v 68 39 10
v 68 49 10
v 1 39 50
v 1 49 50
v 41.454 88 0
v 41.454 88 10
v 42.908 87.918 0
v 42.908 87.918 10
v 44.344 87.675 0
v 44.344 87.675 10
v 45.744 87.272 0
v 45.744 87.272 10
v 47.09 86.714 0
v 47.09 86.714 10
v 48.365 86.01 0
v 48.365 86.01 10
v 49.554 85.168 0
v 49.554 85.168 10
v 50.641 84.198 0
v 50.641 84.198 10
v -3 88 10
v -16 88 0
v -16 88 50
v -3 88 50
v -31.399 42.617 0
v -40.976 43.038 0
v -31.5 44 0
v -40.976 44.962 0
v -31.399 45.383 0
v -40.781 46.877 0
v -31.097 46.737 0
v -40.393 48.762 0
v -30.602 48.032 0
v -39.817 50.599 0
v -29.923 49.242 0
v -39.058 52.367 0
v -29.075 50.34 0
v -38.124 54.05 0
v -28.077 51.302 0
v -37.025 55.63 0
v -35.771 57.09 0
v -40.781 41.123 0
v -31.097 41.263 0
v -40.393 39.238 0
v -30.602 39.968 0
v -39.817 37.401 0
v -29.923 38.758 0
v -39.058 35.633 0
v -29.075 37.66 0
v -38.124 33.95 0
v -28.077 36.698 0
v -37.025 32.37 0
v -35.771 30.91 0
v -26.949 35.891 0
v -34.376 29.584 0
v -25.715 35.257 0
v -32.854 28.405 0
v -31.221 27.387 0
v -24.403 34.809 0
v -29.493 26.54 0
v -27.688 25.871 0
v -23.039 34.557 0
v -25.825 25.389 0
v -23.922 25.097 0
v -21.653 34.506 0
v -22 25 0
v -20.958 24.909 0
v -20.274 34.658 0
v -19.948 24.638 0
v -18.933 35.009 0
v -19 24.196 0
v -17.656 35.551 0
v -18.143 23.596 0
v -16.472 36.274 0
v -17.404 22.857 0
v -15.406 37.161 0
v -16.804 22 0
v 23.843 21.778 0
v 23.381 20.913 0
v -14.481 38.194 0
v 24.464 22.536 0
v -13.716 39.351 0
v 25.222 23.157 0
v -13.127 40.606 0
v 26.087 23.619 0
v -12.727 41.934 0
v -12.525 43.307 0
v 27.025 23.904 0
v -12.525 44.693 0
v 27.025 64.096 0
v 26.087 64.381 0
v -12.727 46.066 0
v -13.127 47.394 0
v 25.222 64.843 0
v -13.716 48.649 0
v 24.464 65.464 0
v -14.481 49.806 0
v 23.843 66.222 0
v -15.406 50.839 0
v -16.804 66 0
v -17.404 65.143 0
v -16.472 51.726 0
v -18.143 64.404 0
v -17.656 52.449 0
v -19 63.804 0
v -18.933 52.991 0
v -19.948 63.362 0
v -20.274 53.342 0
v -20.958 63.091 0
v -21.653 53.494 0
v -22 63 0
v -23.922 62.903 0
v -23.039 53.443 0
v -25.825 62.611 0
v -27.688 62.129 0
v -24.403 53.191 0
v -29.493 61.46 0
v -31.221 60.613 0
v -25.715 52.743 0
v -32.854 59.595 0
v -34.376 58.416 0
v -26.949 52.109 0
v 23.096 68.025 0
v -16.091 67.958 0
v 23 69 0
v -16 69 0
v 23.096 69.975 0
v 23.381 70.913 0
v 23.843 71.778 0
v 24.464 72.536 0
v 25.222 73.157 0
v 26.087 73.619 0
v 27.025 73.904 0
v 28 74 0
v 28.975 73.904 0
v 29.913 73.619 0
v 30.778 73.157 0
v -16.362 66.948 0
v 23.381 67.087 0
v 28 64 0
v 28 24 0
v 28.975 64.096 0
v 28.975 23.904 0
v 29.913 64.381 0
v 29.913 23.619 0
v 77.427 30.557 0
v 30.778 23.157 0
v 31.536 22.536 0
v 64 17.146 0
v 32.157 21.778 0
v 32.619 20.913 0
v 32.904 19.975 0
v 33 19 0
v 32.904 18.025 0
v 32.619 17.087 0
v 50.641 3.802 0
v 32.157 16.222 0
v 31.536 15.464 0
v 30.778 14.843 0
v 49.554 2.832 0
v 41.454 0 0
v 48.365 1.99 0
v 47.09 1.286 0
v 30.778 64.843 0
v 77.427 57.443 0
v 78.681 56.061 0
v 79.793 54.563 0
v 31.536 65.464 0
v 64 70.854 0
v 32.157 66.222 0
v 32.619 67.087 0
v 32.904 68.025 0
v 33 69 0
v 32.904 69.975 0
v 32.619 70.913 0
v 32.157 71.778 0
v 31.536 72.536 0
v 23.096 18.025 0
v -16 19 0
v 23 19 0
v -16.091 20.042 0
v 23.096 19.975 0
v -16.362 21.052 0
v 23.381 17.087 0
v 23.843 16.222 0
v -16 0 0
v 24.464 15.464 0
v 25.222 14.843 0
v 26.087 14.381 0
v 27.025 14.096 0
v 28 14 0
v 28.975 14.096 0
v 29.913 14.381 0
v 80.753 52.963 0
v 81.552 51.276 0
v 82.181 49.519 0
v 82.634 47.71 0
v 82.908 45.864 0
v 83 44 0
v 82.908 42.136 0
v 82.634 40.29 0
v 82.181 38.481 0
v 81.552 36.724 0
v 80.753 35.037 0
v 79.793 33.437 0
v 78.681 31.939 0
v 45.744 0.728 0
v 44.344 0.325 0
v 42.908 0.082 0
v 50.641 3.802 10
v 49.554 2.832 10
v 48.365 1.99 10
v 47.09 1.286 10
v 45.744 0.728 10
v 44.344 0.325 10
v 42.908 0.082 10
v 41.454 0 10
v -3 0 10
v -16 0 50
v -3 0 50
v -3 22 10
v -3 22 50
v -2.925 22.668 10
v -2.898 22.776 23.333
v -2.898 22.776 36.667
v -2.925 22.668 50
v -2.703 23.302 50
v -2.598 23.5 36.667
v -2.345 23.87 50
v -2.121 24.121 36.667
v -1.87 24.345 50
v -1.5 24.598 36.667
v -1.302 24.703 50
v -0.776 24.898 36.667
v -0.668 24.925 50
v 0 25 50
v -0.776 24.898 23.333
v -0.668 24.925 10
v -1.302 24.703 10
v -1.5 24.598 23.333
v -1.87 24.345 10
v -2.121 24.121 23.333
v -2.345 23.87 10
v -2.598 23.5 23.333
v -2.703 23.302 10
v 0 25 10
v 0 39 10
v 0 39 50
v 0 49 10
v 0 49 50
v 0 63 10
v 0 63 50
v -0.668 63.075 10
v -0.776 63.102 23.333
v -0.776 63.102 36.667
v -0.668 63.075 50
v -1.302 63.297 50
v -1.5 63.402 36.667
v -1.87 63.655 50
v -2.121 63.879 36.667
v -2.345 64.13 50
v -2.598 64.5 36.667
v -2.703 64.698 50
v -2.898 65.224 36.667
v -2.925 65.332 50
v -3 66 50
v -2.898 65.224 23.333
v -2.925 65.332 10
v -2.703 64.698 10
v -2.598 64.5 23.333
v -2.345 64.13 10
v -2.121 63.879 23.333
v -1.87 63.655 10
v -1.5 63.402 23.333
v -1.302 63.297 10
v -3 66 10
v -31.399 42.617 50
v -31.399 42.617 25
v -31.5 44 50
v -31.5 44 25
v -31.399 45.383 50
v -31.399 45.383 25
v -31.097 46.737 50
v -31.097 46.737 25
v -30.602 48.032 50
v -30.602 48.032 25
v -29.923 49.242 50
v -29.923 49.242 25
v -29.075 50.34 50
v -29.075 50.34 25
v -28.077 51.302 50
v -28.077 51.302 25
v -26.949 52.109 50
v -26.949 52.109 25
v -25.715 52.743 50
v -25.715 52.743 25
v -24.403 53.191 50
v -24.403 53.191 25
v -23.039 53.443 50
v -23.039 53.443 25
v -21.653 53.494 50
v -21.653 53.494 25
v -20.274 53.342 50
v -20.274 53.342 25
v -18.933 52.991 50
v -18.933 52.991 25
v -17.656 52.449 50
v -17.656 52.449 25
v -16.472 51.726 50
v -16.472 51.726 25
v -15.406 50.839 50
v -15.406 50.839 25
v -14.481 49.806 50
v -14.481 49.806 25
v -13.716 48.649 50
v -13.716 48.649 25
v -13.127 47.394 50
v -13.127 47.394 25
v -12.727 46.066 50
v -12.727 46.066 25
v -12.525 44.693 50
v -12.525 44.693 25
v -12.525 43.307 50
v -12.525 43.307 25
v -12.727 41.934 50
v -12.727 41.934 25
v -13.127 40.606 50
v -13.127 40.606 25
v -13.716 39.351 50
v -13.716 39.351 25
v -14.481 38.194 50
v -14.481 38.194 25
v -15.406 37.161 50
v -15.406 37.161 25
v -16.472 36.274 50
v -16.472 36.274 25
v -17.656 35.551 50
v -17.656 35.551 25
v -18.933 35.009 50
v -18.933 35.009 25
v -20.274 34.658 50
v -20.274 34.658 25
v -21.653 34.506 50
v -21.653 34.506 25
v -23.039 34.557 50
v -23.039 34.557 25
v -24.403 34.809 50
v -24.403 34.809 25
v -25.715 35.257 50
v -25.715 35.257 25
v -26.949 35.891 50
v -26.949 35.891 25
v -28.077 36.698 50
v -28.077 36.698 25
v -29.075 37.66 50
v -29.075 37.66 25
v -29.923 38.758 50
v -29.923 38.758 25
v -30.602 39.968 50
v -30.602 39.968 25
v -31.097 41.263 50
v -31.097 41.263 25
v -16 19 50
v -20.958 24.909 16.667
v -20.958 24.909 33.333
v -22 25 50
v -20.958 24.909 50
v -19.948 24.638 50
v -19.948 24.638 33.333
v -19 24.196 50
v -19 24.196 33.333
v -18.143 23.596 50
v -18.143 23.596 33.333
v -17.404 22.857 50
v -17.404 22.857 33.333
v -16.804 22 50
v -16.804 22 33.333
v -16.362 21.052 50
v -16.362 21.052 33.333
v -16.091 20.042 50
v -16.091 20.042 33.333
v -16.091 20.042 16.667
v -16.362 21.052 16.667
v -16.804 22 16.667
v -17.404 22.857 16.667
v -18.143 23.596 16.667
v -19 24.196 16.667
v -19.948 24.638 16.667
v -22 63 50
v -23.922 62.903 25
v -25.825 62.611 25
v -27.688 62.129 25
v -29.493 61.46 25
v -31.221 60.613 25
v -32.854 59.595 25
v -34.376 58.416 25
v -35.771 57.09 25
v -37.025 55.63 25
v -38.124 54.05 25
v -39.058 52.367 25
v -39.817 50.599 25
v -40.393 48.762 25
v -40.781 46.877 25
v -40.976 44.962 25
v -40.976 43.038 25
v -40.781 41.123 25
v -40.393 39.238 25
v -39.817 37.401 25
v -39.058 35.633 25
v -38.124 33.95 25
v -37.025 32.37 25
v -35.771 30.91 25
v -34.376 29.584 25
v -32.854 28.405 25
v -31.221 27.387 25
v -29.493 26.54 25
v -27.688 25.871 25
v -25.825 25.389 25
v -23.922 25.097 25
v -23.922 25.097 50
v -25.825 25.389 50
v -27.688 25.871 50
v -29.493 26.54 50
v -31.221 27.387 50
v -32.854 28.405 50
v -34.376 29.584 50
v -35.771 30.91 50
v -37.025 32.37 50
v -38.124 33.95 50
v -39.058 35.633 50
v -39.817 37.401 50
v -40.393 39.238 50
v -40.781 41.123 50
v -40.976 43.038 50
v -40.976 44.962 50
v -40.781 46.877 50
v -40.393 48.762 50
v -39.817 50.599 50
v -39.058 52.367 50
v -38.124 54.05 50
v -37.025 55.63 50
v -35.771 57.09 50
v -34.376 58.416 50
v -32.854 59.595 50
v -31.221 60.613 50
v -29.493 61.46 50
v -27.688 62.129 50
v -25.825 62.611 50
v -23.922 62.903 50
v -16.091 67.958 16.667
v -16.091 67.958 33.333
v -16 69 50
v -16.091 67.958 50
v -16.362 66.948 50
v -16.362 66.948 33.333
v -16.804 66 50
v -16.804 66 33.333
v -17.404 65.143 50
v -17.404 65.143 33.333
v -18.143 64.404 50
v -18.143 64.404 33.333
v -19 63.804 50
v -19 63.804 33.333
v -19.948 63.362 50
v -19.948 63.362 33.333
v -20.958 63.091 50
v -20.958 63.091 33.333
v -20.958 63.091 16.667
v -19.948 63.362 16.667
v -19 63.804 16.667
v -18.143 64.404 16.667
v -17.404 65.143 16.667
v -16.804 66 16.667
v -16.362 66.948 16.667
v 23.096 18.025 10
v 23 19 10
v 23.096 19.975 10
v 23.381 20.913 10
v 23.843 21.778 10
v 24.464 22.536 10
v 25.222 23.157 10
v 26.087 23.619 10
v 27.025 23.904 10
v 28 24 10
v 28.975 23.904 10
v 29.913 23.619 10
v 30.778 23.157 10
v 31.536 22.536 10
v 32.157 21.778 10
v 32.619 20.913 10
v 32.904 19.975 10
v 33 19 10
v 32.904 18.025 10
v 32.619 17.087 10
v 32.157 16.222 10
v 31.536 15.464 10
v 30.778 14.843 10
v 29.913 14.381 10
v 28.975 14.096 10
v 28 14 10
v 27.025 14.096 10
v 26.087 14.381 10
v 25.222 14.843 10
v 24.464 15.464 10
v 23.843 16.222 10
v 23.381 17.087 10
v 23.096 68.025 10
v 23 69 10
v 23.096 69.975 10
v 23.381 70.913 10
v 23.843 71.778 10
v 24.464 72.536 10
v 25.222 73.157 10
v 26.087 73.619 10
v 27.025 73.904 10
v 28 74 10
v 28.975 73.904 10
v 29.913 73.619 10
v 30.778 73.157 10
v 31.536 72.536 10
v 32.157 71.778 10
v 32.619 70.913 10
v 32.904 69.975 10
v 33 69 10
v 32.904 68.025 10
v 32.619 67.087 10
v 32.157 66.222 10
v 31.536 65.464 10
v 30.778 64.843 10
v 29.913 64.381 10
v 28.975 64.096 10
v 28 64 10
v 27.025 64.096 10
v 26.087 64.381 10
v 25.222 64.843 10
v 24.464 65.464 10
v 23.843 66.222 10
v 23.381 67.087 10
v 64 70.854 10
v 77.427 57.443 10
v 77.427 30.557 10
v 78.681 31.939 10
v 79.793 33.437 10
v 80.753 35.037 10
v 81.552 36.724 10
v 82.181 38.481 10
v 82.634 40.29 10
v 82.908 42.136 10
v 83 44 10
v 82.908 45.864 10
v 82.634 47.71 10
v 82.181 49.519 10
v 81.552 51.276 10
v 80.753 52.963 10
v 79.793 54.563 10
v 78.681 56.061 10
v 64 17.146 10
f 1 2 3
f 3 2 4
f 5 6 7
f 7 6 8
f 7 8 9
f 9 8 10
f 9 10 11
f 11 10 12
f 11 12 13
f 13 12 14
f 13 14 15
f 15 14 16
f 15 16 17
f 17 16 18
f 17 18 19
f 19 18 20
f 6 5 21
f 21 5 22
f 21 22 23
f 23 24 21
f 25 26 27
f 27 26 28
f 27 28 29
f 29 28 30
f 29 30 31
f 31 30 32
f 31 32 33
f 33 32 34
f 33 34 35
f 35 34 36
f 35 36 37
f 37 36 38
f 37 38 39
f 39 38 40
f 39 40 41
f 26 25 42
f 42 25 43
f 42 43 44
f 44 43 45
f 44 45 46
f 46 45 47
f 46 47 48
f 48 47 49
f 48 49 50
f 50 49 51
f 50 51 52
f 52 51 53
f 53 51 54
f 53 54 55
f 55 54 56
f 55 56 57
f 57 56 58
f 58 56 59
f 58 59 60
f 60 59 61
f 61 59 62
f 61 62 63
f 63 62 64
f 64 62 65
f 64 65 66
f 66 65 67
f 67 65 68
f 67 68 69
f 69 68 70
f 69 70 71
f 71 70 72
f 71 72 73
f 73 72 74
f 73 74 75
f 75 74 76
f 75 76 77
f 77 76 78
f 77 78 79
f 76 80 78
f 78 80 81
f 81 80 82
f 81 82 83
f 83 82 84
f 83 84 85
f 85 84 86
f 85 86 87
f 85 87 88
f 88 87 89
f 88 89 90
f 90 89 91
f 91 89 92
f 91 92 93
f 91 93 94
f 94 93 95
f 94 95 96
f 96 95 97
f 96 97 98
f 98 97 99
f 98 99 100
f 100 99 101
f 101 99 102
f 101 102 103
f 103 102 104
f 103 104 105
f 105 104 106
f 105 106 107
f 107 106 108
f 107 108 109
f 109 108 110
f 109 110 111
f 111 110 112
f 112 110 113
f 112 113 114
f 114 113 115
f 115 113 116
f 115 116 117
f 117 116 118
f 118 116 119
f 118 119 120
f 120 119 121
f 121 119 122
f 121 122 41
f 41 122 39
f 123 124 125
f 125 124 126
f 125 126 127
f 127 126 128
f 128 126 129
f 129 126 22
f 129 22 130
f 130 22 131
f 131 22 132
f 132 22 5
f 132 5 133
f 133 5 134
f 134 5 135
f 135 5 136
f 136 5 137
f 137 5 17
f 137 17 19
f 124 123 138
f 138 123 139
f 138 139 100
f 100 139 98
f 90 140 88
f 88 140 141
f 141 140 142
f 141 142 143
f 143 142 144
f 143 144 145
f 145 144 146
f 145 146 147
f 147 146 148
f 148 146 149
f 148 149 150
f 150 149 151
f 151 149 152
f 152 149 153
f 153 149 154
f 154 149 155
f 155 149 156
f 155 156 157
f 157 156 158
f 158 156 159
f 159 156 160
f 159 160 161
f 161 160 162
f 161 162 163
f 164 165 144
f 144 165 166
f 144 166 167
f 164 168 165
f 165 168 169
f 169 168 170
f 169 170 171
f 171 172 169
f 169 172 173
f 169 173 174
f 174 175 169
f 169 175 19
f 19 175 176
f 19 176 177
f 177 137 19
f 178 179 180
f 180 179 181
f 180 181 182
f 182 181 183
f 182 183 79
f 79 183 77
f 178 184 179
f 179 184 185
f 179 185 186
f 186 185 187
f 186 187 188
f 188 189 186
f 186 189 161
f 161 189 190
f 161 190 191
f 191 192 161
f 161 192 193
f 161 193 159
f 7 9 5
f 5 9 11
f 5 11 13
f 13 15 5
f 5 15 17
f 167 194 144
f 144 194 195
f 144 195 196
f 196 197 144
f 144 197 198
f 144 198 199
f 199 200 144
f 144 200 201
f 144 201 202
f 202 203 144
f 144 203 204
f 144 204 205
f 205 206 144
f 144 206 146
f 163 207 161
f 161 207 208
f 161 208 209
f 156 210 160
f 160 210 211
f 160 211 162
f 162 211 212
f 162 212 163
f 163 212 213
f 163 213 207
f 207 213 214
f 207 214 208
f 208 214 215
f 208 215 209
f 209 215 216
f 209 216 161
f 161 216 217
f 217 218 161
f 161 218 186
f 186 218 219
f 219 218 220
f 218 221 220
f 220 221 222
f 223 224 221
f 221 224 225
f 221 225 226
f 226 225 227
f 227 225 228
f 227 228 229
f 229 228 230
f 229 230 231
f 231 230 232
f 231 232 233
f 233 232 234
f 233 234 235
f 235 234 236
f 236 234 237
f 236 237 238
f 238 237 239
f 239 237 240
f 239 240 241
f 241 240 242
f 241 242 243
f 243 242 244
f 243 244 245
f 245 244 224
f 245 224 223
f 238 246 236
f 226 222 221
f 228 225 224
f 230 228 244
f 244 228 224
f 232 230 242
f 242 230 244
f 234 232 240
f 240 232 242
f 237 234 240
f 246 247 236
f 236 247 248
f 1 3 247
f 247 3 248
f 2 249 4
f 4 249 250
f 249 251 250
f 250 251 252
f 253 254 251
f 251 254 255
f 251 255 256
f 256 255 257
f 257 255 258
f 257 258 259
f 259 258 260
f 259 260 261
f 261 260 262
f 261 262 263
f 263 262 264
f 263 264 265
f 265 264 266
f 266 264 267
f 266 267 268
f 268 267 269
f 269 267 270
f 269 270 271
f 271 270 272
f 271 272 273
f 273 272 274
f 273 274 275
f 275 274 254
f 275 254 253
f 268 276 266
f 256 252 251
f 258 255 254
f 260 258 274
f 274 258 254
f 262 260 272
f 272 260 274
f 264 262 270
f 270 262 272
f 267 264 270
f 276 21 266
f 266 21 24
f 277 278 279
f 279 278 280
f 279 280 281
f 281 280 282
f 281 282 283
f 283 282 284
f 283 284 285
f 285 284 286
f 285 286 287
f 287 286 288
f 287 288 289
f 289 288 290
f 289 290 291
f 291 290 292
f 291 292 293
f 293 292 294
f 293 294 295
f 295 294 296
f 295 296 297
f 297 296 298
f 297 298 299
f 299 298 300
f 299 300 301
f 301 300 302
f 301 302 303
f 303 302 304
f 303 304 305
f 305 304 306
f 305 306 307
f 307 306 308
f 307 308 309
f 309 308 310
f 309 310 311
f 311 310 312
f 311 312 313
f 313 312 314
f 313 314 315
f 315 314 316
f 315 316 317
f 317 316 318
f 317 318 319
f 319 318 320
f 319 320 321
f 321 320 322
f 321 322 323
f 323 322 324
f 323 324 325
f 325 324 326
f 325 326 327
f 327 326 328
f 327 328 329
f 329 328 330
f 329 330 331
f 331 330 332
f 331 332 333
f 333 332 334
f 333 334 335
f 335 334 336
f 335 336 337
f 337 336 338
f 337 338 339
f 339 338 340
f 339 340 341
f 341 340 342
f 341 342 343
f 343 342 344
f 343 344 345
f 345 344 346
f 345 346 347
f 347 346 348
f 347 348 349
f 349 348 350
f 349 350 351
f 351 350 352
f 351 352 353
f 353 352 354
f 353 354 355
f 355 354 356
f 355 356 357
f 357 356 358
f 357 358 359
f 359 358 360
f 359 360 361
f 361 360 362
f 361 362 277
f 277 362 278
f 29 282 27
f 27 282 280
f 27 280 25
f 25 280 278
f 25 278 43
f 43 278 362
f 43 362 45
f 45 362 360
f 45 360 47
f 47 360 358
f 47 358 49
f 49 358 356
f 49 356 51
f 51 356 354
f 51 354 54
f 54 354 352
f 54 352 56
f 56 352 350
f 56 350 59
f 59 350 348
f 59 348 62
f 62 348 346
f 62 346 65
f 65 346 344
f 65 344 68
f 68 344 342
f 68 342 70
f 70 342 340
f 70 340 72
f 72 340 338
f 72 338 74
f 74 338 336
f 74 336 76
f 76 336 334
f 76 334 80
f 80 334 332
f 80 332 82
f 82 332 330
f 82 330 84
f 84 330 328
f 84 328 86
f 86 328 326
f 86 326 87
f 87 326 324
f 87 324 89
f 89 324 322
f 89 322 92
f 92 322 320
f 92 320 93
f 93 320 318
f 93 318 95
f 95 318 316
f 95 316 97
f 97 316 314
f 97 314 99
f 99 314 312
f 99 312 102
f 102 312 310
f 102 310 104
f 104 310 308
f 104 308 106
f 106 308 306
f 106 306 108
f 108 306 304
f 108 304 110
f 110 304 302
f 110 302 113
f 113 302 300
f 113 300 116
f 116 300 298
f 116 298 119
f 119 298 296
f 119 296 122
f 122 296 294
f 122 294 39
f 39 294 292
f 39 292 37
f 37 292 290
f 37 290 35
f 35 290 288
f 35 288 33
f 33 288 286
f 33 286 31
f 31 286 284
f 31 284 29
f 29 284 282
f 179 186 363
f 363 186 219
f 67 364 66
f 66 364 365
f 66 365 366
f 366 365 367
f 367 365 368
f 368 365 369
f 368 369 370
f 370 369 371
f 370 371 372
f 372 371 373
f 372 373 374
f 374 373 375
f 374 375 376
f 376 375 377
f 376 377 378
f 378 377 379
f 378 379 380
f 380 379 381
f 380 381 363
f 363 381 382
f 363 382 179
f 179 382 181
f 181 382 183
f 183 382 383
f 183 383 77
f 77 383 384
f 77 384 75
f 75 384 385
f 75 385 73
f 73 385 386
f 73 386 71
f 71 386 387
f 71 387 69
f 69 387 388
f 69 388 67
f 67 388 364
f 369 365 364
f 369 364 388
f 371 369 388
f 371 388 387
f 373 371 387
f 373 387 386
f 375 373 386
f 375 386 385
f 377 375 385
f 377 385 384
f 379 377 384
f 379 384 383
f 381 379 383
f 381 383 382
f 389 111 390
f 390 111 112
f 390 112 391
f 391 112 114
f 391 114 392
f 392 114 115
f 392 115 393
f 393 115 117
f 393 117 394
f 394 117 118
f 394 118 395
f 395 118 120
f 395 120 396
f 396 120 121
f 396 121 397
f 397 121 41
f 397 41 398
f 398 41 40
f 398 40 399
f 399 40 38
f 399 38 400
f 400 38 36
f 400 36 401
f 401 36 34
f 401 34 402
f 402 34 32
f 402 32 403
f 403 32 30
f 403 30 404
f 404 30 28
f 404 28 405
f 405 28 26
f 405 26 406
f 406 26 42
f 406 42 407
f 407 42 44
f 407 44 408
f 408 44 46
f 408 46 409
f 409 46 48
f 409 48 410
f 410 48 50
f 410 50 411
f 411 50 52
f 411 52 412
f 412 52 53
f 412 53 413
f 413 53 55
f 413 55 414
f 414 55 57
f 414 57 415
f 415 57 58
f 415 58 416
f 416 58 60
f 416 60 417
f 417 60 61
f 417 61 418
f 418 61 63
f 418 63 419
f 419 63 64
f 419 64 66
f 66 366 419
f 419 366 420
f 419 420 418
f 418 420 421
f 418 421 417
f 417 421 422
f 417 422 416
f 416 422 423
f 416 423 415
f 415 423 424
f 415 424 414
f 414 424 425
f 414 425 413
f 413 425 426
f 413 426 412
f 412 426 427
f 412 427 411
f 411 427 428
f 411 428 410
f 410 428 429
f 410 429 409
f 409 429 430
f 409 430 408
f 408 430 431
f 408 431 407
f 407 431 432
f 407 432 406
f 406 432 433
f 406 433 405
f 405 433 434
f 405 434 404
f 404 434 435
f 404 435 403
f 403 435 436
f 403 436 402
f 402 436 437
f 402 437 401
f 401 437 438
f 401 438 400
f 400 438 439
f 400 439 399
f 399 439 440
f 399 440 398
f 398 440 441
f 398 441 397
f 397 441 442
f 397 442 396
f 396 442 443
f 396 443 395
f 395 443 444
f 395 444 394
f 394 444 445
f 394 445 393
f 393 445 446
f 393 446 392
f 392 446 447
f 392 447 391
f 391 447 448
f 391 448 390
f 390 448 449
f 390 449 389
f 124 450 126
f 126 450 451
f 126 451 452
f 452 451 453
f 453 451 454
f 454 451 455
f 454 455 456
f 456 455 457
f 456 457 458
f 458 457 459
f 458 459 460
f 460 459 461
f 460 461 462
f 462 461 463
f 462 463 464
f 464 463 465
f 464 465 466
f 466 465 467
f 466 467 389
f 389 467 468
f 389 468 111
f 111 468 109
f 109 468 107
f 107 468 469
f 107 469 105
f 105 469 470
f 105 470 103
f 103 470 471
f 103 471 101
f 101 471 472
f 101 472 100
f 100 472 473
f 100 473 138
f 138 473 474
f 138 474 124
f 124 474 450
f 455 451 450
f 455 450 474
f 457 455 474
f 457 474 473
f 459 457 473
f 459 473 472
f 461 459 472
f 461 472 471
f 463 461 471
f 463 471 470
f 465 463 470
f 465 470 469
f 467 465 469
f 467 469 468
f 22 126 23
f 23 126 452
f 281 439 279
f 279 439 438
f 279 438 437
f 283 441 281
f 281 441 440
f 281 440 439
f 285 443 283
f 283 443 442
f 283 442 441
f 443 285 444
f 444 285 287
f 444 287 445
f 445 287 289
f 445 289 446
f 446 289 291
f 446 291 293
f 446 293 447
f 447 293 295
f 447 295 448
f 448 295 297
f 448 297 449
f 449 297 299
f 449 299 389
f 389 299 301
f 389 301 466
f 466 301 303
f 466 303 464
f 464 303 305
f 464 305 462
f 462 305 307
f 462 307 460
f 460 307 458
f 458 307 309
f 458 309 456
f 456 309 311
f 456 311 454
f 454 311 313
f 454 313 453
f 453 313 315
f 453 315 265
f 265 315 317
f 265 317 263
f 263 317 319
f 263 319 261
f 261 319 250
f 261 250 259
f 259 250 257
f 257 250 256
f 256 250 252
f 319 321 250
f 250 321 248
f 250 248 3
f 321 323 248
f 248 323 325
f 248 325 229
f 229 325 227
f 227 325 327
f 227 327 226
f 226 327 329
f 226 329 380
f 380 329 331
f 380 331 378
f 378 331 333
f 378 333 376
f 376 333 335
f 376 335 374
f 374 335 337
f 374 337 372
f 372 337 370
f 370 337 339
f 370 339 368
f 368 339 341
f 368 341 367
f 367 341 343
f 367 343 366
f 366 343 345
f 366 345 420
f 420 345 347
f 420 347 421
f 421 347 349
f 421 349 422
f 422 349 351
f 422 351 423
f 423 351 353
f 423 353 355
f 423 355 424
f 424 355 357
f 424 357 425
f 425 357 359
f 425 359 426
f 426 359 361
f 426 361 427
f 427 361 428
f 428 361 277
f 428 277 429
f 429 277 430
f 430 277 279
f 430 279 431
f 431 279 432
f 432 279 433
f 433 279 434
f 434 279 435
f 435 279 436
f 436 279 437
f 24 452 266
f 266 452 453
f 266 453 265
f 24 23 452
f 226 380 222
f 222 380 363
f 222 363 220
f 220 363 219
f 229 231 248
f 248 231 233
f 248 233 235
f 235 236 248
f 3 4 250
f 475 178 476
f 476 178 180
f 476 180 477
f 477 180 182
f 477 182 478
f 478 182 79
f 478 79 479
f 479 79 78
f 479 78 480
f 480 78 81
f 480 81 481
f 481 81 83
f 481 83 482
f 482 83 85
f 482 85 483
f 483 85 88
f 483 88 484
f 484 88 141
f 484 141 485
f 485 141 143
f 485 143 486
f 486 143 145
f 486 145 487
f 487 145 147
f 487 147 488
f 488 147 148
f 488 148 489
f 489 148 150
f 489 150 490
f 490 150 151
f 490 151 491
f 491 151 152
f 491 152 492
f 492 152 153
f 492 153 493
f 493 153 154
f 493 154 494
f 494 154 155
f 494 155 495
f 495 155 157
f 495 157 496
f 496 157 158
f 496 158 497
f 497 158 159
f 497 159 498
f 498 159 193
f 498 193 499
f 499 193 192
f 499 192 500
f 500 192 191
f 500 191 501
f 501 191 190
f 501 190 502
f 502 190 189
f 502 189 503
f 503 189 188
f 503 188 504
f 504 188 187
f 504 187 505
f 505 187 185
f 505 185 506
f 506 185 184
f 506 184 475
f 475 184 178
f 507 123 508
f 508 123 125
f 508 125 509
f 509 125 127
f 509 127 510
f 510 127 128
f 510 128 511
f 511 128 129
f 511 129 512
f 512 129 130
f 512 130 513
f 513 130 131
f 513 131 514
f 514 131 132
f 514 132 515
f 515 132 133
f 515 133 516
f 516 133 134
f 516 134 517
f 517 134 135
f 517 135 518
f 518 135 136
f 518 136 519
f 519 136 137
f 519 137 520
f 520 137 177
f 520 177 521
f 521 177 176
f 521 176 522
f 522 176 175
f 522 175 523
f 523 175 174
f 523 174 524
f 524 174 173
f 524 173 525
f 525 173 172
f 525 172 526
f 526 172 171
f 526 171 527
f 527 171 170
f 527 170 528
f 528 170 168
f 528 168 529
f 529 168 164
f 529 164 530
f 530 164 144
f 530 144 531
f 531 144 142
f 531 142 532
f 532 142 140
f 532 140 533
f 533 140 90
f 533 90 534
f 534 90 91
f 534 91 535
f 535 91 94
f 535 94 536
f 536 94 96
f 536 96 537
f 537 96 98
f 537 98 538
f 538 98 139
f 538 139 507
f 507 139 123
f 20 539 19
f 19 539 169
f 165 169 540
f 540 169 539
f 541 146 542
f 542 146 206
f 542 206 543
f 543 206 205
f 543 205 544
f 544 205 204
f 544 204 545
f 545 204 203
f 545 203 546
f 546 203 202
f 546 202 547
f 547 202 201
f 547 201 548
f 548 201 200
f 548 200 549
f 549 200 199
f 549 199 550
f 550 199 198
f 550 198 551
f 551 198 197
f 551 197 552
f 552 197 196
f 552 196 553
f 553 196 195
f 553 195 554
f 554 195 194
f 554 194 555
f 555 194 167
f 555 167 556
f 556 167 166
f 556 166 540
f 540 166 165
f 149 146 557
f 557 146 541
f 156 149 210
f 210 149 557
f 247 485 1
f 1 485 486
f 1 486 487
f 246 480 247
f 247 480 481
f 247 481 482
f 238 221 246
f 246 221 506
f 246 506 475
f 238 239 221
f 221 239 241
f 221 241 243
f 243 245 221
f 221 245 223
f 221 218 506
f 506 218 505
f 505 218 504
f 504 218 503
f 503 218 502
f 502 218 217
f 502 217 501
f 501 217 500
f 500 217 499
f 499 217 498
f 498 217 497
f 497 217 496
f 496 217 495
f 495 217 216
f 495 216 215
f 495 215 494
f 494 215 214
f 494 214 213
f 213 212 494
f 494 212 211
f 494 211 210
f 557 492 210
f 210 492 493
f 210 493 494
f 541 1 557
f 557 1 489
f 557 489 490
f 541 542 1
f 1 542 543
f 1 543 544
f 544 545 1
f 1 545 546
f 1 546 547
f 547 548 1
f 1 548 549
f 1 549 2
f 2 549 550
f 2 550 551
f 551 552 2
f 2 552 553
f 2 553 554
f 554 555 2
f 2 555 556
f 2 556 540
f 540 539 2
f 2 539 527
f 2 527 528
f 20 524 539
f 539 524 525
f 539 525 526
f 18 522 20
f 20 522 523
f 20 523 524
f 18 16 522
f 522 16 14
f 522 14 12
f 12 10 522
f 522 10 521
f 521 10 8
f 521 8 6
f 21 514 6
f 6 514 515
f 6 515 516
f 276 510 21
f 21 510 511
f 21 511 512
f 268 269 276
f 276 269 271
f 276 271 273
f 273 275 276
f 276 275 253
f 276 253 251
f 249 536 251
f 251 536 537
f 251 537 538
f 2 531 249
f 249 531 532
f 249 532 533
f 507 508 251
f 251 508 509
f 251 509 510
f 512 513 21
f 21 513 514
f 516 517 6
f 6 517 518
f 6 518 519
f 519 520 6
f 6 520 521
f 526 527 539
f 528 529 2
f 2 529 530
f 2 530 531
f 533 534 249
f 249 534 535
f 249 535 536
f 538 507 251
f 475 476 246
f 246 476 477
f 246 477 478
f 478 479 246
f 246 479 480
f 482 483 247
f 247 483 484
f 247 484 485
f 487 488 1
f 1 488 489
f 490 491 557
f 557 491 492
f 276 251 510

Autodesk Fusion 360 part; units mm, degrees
sketch "BaseA3" plane through (0, 0, 0) normal (0, 0, 1) x (1, 0, 0)
  line L0 (0, 0) -> (28, 0)
  line L1 (28, 88) -> (0, 88)
  line L2 (0, 0) -> (-3, 0)
  line L3 (-3, 88) -> (0, 88)
  line L4 (-3, 0) -> (-16, 0)
  line L5 (-16, 88) -> (-3, 88)
  line L6 (-9.5, 0) -> (-9.5, 44) construction
  line L7 (-9.5, 44) -> (-16, 44) construction
  line L8 (-16, 44) -> (-22, 44) construction
  circle A0 centre (-22, 44) radius 9.5
  arc A1 (-22, 63) -> (-22, 25) centre (-22, 44) ccw
  line L9 (-16, 0) -> (-16, 19)
  line L10 (-16, 69) -> (-16, 88)
  arc A2 (-22, 63) -> (-16, 69) centre (-22, 69) ccw
  arc A3 (-16, 19) -> (-22, 25) centre (-22, 19) ccw
  line L11 (0, 63) -> (0, 63)
  line L12 (0, 25) -> (0, 22) construction
  line L13 (0, 22) -> (-3, 22) construction
  arc A4 (0, 25) -> (-3, 22) centre (0, 22) ccw
  line L14 (-9.5, 44) -> (0, 44) construction
  arc A5 (-3, 66) -> (0, 63) centre (0, 66) ccw
  line L15 (-22, 69) -> (-22, 63) construction
  line L16 (-22, 69) -> (-16, 69) construction
  line L17 (-22, 63) -> (-22, 25) construction
  line L18 (-22, 25) -> (-22, 19) construction
  line L19 (-22, 19) -> (-16, 19) construction
  line L20 (0, 63) -> (0, 66) construction
  line L21 (0, 66) -> (-3, 66) construction
  line L22 (-3, 69) -> (28, 69) construction
  circle A6 centre (28, 69) radius 5
  line L23 (0, 44) -> (28, 44) construction
  circle A7 centre (28, 19) radius 5
  line L24 (-3, 19) -> (28, 19) construction
  line L25 (28, 19) -> (64, 19) construction
  line L26 (64, 19) -> (64, 69) construction
  line L27 (64, 69) -> (28, 69) construction
  line L28 (28, 0) -> (46.834, 0)
  line L29 (46.834, 0) -> (64, 17.146)
  line L30 (64, 17.146) -> (77.427, 30.5569)
  line L31 (28, 44) -> (83, 44) construction
  line L32 (64, 70.854) -> (77.427, 57.4431)
  line L33 (46.834, 88) -> (64, 70.854)
  line L34 (28, 88) -> (46.834, 88)
  arc A8 (77.427, 30.5569) -> (77.427, 57.4431) centre (64, 44) ccw
  line L35 (-3, 88) -> (-3, 66)
  line L36 (-3, 22) -> (-3, 0)
  line L37 (-3, 0) -> (-3, 22)
  line L38 (-3, 66) -> (-3, 88)
  line L39 (0, 49) -> (1, 49)
  line L40 (1, 49) -> (1, 39)
  line L41 (1, 39) -> (0, 39)
  line L42 (0, 63) -> (0, 49)
  line L43 (0, 39) -> (0, 25)
  dimension "d3" = 13
  dimension "d4" = 88
  dimension "d5" = 19
extrude "Extrude1" add sketch "BaseA3" along normal blind 10 contours L0 L1 L2 L3 A4 A5 L28 L29 L30 L32 L33 L34 A8 L35 L36 L37 L38 L39 L40 L41 L42 L43
extrude "Extrude2" add sketch "BaseA3" along normal blind 50 contours L4 L5 A1 L9 L10 A2 A3 A4 A5 L35 L36 L37 L38 L39 L40 L41 L42 L43
fillet "Fillet1" radius 13 1 edges at (46.834, 0, 5)
fillet "Fillet2" radius 13 1 edges at (46.834, 88, 5)
sketch "Triangle" plane through (0, 0, 0) normal (0, -1, 0) x (1, 0, 0)
  line L0 (41.4537, 0) -> (41.4537, 10)
  line L1 (41.4537, 10) -> (-3, 10)
  line L2 (-3, 10) -> (-3, 50)
  line L3 (-3, 50) -> (-16, 50)
  line L4 (-16, 50) -> (-16, 0)
  line L5 (-16, 0) -> (41.4537, 0)
  line L6 (-3, 10) -> (1, 10)
  line L7 (1, 50) -> (1, 10)
  line L8 (1, 10) -> (68, 10)
  line L9 (68, 10) -> (1, 50)
extrude "Extrude3" add sketch "Triangle" against normal blind 10 from surface at -39 contours L1 L7 L8 L9
